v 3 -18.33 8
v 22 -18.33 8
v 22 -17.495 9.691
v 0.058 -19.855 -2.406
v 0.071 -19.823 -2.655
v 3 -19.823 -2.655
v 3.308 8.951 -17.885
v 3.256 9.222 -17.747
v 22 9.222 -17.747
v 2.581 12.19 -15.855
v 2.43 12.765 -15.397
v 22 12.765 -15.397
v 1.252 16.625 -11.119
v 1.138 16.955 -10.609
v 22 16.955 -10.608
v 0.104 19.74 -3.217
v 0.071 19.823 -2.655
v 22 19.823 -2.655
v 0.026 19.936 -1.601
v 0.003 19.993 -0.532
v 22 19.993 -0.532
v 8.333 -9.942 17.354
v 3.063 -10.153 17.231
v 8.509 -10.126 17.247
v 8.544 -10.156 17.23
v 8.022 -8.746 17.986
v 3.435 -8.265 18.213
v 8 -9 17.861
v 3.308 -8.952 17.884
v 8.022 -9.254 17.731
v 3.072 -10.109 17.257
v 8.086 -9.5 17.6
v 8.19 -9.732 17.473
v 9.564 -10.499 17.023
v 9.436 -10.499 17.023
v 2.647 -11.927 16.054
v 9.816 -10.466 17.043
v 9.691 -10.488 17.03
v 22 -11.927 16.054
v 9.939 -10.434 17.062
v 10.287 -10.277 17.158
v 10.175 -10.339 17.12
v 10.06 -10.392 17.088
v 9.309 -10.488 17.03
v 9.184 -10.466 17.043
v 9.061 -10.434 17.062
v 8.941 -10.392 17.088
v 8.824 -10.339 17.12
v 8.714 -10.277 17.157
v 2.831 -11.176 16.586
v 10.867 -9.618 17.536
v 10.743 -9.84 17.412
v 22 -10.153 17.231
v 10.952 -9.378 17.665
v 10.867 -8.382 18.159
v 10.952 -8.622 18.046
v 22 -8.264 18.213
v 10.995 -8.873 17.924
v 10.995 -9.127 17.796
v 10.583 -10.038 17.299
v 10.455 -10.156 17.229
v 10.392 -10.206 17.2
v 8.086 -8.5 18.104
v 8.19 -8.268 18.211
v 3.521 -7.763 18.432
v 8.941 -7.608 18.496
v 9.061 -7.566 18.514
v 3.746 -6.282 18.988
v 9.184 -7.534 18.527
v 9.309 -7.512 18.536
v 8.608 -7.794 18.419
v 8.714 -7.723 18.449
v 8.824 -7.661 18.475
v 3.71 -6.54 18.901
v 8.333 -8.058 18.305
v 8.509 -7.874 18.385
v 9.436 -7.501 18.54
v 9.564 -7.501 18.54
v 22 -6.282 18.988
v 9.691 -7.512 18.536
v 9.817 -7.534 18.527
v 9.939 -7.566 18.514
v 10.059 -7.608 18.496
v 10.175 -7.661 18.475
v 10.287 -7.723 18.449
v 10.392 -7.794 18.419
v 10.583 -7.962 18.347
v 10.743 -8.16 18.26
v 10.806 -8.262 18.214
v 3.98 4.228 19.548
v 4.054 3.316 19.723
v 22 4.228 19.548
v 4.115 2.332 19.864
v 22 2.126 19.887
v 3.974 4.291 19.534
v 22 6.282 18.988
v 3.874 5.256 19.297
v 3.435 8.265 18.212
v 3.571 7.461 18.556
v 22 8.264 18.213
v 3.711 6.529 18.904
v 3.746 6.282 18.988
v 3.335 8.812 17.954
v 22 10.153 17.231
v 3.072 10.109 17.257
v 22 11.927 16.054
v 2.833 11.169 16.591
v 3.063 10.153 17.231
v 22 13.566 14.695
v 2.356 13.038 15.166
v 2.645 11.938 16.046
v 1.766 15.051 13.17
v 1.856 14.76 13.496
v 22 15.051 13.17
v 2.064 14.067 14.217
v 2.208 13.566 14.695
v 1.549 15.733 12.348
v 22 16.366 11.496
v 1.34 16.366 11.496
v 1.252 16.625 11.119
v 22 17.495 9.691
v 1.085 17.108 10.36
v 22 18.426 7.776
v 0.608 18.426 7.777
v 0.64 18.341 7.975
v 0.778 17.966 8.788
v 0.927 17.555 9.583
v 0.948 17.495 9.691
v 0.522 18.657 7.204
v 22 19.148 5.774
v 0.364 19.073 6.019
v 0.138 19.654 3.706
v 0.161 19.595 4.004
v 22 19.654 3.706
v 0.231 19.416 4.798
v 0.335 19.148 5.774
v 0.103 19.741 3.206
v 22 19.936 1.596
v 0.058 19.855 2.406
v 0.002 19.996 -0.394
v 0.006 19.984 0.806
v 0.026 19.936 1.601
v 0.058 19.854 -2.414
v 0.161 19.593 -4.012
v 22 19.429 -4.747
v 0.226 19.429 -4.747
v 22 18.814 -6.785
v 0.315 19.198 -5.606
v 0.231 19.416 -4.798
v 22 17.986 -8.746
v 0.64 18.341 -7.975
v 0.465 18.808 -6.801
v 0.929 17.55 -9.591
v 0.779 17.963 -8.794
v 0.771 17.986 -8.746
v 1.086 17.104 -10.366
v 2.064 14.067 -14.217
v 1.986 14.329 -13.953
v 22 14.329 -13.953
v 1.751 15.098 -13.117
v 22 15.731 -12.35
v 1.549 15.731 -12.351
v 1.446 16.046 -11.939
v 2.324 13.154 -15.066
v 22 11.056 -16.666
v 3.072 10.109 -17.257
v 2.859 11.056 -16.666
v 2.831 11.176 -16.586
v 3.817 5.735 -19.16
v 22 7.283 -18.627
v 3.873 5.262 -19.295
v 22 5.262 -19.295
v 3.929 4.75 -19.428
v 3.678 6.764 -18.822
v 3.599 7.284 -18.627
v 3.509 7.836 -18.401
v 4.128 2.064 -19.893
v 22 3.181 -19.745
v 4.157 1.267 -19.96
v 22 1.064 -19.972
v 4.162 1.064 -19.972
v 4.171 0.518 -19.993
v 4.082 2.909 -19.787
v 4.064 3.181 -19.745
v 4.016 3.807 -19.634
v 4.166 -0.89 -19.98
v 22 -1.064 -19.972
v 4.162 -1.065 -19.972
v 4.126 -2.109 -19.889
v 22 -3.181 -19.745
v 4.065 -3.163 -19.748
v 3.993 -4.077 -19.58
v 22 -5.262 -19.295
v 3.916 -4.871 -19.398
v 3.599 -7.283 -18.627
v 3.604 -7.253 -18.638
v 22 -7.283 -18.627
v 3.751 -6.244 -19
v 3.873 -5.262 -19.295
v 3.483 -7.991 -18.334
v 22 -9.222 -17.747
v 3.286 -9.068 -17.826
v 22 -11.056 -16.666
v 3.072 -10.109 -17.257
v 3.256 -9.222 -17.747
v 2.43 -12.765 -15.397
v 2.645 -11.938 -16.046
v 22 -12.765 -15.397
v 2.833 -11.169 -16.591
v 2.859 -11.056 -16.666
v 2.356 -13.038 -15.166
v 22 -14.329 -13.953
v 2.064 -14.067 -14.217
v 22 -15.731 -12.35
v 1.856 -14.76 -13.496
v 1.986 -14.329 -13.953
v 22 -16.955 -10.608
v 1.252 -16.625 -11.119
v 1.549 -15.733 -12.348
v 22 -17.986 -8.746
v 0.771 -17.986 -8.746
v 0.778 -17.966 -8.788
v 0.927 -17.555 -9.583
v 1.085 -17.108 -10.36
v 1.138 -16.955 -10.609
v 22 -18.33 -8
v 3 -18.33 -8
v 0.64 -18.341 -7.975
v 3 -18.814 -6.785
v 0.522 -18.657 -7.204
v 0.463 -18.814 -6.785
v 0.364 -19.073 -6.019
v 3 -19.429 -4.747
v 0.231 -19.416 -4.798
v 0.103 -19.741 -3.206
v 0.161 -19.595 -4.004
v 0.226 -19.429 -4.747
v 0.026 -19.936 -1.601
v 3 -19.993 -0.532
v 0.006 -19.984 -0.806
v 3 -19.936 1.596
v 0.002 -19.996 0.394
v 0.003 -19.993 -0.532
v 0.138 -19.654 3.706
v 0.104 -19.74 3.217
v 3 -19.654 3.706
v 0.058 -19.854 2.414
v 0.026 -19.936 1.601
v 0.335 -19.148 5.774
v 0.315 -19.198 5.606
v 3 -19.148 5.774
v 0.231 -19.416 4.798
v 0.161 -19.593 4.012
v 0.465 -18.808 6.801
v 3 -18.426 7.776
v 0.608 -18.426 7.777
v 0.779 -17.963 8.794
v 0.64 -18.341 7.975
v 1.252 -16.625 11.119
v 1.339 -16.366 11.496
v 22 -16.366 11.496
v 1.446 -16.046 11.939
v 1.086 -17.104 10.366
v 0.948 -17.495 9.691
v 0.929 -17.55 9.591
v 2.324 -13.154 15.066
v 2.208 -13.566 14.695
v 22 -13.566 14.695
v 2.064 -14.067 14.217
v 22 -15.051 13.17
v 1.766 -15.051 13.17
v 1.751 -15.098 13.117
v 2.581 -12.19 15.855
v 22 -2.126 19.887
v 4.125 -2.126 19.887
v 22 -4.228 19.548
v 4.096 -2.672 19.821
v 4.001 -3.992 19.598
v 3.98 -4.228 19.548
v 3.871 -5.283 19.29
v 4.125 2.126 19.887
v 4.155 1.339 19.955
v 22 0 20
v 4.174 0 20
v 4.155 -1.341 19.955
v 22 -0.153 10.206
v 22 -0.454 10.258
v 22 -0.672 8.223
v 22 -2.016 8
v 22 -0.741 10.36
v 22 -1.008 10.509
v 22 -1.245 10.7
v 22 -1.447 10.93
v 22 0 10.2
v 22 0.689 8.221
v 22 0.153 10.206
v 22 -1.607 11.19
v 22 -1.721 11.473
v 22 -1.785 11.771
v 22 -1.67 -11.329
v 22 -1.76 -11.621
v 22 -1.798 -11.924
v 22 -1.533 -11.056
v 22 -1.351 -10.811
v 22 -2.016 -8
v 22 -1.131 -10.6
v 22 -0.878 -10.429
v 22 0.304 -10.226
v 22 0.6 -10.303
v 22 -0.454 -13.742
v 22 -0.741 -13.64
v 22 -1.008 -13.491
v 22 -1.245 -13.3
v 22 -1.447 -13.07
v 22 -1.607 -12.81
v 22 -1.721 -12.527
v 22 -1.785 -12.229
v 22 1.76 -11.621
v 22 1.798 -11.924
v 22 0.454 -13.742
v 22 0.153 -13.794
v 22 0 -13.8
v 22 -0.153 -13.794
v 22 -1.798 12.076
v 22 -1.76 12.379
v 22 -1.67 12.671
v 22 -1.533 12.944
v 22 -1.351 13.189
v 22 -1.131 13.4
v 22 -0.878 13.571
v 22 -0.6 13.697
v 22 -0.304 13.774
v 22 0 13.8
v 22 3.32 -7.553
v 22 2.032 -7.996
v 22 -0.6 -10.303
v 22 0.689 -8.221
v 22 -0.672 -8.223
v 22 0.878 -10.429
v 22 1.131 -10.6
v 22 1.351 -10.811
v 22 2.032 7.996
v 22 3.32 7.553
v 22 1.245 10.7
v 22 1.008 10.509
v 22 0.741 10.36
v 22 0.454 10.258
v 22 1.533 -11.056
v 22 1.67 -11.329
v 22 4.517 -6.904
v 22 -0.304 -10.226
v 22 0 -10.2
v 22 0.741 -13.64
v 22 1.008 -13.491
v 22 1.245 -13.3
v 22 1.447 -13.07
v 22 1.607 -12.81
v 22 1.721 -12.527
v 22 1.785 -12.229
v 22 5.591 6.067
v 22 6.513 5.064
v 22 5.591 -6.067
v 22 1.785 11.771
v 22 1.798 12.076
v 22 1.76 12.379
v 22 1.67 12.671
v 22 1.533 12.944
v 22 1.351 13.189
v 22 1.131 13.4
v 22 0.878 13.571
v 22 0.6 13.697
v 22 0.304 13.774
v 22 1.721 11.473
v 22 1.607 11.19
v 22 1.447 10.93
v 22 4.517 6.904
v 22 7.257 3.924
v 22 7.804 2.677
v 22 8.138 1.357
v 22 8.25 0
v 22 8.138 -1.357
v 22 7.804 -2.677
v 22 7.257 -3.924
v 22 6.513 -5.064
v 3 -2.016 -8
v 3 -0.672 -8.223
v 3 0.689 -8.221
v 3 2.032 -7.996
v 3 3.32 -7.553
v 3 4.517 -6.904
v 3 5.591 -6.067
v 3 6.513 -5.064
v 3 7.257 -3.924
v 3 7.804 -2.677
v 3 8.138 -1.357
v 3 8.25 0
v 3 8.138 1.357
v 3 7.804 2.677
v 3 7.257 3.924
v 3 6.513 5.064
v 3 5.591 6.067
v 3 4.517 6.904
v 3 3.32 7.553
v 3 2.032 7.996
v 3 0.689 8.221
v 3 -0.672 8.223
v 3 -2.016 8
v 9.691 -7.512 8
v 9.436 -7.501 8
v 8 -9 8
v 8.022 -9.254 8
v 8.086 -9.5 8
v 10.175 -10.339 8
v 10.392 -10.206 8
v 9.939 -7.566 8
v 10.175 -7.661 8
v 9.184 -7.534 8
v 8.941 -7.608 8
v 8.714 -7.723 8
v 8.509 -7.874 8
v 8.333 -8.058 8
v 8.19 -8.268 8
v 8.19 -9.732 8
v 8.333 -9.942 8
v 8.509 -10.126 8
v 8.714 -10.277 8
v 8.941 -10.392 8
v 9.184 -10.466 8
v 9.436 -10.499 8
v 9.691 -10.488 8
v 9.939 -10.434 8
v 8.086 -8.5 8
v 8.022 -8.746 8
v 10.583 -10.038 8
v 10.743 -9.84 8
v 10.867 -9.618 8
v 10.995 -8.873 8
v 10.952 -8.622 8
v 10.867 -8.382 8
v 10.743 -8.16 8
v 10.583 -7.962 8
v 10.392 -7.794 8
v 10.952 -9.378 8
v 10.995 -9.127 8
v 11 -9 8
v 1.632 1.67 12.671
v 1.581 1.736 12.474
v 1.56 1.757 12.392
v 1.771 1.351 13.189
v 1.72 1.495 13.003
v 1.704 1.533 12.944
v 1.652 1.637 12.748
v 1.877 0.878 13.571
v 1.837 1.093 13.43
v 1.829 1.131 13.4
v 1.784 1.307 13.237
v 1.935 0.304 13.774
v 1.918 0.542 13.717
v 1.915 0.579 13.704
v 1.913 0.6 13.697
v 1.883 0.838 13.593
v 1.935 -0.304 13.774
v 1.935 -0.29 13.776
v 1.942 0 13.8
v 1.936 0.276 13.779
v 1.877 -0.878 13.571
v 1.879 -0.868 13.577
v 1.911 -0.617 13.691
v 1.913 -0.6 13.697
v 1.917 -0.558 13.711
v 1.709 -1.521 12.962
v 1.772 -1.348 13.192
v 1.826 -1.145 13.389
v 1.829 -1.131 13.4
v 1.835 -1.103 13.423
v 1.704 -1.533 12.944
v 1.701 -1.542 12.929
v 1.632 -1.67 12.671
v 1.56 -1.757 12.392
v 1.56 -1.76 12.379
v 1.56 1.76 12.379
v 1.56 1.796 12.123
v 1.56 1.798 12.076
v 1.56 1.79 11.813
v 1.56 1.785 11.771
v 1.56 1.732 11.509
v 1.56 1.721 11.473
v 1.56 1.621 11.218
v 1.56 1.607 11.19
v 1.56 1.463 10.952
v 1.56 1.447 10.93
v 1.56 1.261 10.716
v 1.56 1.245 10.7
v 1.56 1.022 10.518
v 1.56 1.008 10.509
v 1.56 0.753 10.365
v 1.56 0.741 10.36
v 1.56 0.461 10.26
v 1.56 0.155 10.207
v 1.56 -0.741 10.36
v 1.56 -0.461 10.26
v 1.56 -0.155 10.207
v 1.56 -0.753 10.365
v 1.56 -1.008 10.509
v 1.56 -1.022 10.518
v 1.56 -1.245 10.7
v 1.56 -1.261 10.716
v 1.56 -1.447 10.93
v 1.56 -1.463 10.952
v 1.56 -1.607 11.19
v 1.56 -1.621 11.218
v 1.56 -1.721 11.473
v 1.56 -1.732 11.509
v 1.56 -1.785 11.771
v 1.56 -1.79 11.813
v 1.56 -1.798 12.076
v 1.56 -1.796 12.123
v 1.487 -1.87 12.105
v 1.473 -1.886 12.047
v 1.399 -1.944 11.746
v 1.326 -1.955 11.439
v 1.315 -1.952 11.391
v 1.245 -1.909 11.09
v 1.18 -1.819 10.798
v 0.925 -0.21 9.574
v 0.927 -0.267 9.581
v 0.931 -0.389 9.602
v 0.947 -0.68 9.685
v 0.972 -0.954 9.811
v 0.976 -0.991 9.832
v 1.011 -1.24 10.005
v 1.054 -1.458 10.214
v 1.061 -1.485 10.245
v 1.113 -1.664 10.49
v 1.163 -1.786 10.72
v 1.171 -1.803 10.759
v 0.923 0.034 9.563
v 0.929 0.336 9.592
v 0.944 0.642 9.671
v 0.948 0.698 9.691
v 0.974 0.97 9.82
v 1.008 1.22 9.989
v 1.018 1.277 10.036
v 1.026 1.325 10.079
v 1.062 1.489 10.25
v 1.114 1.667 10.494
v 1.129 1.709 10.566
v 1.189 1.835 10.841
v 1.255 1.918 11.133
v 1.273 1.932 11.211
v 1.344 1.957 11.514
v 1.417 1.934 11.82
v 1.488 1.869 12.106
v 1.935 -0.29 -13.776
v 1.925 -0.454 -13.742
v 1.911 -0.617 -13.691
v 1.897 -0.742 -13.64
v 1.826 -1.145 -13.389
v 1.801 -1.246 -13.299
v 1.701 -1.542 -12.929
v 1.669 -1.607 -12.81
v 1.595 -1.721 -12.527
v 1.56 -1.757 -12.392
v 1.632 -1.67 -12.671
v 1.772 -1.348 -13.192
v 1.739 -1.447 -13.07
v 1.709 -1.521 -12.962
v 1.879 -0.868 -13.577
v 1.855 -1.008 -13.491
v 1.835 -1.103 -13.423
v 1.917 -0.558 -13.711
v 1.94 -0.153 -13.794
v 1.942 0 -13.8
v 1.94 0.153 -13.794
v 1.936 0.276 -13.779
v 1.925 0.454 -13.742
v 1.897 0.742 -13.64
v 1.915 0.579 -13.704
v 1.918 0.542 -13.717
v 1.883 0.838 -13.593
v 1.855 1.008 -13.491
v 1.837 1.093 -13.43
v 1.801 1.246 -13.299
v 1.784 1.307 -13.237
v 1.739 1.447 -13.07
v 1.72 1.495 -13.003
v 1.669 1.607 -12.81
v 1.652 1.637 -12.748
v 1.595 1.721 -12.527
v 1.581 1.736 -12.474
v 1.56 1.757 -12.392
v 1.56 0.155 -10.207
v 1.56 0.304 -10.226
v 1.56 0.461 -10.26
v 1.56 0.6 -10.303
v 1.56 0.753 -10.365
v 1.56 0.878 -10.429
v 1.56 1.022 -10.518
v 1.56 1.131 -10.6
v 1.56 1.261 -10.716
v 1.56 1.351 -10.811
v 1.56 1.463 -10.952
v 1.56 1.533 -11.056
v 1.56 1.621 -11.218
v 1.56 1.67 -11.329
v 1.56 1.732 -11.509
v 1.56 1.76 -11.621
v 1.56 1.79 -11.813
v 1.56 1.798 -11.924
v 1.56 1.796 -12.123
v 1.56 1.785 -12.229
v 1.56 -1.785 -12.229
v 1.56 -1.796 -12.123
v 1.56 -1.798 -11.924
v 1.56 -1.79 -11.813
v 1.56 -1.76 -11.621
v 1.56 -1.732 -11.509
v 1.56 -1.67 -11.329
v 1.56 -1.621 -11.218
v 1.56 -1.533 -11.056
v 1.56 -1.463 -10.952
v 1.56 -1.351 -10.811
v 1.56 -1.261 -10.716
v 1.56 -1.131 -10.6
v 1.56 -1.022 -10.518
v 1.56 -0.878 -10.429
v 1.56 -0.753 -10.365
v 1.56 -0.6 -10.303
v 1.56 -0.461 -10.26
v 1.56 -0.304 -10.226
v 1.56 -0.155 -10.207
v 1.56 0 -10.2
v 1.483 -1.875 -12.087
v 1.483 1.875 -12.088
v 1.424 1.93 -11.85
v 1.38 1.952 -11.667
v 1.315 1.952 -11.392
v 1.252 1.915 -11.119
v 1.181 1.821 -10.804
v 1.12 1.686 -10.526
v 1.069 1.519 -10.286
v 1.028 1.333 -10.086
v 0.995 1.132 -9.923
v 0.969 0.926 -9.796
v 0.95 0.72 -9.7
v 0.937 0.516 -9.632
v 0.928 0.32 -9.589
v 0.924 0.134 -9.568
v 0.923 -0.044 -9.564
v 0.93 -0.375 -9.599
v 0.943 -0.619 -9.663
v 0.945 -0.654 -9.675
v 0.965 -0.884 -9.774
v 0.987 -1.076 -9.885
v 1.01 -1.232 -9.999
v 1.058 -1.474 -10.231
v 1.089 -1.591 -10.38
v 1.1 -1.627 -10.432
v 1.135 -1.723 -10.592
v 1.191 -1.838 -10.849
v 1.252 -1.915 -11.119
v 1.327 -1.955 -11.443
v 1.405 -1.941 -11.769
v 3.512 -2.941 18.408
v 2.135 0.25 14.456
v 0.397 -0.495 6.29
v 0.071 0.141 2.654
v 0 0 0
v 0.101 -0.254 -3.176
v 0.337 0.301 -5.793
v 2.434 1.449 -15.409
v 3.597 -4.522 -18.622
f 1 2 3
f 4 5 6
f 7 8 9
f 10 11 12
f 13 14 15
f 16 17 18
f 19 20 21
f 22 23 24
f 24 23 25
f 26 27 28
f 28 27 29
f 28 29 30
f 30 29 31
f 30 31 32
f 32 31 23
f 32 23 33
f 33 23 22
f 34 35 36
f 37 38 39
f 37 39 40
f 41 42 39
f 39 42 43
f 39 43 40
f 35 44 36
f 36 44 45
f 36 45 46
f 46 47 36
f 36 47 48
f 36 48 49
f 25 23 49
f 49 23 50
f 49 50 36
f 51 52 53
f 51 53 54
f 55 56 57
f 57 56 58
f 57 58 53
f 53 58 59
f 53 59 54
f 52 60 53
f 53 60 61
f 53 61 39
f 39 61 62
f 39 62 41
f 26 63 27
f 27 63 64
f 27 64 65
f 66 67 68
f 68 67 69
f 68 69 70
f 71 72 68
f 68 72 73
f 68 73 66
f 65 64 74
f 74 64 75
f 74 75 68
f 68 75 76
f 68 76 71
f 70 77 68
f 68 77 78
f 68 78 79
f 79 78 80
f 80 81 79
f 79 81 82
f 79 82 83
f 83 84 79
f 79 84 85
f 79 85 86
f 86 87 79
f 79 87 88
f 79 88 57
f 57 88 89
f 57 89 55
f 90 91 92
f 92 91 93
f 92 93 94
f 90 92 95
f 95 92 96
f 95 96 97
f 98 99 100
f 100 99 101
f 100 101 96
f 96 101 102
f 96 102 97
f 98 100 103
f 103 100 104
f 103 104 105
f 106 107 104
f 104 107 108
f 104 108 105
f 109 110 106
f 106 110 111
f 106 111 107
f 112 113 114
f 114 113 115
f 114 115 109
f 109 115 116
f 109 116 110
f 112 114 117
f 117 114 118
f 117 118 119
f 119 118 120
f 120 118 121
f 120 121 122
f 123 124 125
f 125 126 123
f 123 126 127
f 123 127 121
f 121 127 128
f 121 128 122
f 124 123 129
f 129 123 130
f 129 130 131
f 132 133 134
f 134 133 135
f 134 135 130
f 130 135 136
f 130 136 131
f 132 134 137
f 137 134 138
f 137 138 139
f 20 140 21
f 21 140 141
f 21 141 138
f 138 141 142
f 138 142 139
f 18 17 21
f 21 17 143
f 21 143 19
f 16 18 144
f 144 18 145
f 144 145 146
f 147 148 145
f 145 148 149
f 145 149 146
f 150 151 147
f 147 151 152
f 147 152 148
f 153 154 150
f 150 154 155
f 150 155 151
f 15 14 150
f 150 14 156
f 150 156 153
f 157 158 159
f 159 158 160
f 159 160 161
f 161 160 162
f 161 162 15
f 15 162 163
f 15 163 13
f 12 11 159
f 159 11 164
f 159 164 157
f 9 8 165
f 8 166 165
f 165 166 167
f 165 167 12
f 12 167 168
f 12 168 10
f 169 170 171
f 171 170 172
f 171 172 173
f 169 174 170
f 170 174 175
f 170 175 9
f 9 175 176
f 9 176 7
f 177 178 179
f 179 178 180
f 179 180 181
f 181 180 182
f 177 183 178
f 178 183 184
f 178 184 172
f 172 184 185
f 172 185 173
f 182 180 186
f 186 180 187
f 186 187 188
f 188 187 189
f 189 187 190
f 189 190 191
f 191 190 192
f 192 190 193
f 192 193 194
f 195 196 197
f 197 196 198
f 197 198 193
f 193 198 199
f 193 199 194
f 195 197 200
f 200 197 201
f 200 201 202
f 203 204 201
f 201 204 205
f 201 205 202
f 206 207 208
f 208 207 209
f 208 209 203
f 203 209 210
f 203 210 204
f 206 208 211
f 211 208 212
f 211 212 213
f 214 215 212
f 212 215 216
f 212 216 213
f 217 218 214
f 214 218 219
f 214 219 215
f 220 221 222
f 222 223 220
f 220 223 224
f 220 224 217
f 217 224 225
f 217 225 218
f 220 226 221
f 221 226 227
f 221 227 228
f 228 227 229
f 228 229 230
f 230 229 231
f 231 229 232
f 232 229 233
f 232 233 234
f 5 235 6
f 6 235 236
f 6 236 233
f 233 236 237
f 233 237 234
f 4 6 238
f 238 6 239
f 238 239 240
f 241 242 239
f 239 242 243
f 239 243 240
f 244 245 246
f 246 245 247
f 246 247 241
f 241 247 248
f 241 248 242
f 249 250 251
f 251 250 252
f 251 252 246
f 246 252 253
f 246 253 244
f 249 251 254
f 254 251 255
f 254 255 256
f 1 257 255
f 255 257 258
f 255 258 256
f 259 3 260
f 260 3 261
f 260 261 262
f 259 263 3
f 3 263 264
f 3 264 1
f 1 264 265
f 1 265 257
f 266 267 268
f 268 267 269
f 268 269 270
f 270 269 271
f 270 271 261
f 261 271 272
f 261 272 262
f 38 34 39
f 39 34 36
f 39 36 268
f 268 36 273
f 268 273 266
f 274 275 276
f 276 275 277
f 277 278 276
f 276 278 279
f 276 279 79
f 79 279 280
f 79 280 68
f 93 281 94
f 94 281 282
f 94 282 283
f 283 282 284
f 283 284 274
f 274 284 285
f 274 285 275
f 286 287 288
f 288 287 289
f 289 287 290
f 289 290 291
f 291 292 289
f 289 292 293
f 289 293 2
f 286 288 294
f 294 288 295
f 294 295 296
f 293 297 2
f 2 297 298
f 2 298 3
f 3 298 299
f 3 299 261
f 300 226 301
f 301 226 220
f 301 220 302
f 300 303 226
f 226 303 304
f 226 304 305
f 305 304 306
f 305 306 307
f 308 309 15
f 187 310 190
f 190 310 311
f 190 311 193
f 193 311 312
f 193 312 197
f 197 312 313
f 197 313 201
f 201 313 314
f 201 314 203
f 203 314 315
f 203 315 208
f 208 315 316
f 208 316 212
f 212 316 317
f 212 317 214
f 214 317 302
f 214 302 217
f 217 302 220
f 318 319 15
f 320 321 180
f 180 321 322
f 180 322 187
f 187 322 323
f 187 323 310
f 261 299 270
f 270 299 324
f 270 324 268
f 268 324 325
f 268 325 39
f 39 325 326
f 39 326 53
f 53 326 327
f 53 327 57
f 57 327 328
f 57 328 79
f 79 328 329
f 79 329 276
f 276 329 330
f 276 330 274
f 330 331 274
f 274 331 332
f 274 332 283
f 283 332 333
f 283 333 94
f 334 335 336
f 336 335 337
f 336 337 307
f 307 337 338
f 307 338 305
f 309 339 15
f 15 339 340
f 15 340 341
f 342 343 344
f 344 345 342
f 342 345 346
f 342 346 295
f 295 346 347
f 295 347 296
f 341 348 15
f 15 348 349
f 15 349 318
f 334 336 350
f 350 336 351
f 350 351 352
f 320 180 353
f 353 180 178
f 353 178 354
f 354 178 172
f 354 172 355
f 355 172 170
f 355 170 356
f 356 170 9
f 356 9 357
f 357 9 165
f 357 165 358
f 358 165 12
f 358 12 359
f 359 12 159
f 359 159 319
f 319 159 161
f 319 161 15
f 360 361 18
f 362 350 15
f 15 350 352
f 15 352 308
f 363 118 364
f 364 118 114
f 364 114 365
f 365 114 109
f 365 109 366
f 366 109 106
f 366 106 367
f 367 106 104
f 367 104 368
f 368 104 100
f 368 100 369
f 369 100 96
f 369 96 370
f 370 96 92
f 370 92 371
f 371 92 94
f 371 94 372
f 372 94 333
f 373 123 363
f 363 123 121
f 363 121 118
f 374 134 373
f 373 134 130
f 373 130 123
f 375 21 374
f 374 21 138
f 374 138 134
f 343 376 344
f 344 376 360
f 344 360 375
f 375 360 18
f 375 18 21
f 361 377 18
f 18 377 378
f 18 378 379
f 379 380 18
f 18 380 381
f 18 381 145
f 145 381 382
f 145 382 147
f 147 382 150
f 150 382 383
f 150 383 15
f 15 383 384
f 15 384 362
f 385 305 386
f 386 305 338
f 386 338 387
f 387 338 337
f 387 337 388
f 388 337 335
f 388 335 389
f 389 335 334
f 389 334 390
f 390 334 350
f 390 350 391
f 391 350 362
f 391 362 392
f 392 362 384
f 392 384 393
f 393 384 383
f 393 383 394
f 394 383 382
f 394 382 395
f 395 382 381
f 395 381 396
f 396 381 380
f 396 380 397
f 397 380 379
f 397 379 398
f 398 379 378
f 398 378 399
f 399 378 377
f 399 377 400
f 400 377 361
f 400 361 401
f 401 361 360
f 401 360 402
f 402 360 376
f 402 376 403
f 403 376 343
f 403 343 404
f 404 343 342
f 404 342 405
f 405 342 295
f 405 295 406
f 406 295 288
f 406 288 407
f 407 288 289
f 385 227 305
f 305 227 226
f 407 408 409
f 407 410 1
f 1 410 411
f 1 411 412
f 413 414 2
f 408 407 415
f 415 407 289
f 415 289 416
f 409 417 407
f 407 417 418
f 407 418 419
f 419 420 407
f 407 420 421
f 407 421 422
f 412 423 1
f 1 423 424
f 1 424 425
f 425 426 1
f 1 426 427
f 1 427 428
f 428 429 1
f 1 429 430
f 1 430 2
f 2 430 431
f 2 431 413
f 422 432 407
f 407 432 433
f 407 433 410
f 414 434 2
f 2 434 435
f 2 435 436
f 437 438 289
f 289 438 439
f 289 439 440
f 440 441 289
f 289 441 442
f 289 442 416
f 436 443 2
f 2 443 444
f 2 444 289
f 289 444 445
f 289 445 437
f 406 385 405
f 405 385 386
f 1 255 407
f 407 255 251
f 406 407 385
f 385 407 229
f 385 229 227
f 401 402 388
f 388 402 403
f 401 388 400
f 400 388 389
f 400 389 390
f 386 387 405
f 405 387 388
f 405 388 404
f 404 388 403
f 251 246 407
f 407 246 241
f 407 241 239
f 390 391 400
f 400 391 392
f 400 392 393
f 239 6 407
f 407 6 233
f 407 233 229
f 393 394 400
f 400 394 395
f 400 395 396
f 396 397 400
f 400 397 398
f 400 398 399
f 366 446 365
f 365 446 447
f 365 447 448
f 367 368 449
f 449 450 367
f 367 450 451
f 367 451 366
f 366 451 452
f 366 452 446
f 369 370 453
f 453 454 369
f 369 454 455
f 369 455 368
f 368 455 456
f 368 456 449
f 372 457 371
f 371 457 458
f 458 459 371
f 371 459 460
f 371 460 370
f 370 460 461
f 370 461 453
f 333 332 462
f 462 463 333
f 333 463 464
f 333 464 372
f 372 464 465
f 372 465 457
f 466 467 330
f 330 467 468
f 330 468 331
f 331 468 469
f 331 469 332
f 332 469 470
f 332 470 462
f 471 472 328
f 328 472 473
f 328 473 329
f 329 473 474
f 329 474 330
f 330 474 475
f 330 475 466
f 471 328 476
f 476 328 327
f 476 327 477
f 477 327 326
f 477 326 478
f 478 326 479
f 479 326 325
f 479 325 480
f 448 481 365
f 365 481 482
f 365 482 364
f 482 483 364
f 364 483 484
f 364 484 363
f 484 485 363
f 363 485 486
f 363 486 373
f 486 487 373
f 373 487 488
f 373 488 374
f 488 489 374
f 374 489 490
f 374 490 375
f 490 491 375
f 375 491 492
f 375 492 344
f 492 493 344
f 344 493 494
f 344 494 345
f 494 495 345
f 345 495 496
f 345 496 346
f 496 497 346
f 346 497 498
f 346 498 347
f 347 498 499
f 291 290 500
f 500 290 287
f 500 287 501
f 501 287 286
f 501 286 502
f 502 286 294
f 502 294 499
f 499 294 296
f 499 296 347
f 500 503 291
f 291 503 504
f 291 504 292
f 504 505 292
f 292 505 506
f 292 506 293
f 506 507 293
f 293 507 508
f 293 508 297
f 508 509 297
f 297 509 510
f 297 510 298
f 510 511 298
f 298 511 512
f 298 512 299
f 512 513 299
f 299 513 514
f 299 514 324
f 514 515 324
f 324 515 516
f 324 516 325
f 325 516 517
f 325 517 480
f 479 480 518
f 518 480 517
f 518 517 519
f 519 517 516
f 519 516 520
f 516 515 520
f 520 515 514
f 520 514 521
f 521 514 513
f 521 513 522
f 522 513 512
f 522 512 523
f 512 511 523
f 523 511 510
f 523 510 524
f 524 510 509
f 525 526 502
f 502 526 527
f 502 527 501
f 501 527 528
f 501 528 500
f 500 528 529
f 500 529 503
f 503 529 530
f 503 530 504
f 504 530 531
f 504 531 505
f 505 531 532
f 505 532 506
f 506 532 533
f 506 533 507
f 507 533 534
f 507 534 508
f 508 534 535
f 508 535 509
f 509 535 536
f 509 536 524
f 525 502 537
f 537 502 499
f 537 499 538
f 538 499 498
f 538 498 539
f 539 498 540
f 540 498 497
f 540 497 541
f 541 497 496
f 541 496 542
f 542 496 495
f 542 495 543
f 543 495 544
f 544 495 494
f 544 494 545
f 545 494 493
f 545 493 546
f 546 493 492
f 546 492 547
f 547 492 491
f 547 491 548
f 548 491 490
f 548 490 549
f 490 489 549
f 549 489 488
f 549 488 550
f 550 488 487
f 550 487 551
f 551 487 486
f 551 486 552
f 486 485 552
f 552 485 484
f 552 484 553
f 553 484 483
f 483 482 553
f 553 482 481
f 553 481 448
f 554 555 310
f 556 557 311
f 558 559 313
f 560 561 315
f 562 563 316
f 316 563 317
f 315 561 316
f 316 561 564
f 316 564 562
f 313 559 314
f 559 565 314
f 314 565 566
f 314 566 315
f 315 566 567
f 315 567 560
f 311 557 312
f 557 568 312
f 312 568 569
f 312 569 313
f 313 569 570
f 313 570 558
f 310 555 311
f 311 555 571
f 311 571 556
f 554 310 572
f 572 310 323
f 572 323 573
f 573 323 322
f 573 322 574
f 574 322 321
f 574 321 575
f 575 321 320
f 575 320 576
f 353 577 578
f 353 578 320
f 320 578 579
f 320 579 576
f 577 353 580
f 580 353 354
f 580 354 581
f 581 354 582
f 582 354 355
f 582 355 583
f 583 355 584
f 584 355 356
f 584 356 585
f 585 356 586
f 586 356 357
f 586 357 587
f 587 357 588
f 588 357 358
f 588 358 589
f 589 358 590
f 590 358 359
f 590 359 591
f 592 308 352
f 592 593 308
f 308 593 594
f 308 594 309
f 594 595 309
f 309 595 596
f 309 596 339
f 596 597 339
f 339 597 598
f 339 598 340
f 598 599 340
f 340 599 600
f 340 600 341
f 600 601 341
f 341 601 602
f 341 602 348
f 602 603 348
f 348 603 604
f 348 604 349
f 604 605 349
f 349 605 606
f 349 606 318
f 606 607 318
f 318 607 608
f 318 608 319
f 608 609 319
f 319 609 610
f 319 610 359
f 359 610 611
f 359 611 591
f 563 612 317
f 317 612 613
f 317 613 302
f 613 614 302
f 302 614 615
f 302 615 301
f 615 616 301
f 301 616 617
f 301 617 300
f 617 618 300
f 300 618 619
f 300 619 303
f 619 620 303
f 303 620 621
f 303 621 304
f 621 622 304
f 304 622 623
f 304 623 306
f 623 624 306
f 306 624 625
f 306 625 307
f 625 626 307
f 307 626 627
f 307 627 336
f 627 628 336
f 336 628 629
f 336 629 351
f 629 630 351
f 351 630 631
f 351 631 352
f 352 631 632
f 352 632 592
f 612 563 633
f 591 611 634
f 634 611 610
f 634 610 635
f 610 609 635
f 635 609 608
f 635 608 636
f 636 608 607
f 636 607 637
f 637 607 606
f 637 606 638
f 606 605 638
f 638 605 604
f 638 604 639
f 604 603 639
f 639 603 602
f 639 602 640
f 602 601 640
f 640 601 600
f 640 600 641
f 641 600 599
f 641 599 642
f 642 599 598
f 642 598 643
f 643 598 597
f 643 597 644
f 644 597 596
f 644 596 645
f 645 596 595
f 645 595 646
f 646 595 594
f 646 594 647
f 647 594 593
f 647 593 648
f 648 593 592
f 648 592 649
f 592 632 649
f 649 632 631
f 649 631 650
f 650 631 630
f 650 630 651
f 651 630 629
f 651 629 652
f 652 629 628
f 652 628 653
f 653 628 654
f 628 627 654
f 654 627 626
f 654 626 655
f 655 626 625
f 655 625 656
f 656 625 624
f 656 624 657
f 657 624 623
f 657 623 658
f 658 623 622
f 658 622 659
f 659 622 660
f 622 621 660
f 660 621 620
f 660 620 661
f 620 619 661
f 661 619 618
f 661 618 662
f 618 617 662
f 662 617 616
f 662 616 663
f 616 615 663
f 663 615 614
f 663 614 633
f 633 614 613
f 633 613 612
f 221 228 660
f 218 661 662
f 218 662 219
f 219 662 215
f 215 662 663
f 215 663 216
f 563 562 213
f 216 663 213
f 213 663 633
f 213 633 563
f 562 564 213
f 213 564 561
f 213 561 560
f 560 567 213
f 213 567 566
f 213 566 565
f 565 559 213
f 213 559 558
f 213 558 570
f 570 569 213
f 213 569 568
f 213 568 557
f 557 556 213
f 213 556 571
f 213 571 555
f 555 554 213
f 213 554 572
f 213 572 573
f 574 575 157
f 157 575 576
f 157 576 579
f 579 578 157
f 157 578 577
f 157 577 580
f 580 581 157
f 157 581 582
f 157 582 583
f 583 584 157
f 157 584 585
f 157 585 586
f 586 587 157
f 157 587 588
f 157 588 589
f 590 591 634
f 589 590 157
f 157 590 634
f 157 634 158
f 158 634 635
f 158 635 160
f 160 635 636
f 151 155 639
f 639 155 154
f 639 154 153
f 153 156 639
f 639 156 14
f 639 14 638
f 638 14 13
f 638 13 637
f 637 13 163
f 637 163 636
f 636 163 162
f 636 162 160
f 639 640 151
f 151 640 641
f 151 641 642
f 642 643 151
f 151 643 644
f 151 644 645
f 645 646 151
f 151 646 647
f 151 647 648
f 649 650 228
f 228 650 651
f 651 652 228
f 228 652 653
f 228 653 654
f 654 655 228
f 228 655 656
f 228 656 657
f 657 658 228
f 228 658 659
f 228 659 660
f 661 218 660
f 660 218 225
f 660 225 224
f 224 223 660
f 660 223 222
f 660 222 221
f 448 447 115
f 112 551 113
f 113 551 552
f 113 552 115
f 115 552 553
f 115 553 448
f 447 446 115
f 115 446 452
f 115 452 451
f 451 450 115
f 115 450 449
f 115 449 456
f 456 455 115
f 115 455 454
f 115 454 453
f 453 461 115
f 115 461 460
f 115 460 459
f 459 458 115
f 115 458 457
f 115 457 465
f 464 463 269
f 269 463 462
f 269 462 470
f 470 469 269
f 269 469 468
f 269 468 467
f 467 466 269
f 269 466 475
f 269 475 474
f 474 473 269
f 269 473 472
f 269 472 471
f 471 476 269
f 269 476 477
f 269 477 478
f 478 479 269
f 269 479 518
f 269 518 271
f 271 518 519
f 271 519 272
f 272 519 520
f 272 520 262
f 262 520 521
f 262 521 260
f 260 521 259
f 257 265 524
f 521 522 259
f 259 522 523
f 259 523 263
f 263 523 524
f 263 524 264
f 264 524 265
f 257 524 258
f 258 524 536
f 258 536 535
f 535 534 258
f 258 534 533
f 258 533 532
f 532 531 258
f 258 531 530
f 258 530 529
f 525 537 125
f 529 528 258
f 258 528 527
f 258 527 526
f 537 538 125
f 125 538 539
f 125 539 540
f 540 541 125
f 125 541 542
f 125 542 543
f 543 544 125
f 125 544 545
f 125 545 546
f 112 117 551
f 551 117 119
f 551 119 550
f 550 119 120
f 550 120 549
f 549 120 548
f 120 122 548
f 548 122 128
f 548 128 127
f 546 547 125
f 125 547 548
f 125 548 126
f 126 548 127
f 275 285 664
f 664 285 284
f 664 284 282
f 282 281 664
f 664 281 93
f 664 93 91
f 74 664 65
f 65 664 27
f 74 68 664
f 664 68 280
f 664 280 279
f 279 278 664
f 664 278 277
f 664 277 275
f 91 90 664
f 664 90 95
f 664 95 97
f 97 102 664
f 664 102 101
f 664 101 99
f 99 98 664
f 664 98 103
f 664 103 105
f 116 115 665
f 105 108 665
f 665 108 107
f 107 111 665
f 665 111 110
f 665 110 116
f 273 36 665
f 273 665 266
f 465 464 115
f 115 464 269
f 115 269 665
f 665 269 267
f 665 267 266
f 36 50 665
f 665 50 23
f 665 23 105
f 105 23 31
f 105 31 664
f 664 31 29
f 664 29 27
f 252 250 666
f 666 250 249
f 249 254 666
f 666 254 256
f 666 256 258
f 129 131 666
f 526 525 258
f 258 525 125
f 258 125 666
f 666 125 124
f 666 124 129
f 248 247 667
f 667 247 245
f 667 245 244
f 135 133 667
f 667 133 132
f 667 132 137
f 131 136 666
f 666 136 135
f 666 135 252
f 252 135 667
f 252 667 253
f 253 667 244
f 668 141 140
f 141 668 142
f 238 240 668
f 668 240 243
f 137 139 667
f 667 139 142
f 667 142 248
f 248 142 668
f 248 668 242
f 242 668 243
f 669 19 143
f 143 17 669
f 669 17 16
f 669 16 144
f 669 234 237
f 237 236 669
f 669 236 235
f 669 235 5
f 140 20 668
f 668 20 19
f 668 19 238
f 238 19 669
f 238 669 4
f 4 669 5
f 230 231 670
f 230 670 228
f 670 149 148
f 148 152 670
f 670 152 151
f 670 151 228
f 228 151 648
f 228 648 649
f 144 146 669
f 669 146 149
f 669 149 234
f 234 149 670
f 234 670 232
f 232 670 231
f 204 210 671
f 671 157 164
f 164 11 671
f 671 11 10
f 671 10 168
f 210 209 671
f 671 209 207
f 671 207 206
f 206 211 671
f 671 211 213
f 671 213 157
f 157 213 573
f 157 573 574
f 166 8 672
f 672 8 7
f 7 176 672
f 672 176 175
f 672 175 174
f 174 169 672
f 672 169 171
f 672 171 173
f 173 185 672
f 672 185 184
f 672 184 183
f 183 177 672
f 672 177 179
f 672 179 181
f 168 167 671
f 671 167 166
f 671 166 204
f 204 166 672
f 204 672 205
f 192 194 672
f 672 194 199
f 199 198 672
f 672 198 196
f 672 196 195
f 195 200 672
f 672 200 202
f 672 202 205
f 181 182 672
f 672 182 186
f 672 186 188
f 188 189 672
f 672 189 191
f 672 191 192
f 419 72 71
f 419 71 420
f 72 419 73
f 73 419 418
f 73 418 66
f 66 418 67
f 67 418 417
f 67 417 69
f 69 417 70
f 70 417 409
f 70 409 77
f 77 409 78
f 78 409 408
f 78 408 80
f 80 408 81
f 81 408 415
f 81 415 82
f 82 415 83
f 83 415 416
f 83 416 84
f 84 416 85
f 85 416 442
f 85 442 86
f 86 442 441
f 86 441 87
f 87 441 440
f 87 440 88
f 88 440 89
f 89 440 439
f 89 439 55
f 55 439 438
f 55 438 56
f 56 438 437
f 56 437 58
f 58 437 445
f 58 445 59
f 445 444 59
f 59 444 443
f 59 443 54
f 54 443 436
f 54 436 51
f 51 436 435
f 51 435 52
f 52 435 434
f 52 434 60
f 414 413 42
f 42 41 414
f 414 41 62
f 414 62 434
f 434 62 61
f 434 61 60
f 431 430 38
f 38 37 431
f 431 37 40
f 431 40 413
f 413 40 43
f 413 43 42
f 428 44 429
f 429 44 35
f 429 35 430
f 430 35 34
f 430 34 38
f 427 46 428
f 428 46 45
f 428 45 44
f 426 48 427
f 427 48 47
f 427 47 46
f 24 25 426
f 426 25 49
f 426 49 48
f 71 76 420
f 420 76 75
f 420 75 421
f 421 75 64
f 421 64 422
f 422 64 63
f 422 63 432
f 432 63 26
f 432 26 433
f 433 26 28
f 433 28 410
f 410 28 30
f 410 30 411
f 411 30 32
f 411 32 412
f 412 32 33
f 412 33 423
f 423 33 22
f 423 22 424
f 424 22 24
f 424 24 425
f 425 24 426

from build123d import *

# Parameters (mm, degrees)
SKETCH1_R                     = 20
BOSS_EXTRUDE1_DEPTH           = 22
CUT_EXTRUDE1_START            = -19
CUT_EXTRUDE1_DEPTH            = 19
CSK_FOR_M3_SFHCS1_D           = 3.6
CSK_FOR_M3_SFHCS1_CSINK_D     = 6.72
CSK_FOR_M3_SFHCS1_CSINK_ANGLE = 90
CUT_EXTRUDE2_START            = -20.001419
SKETCH7_R                     = 75
SKETCH7_R_2                   = 50
CUT_EXTRUDE2_DEPTH            = 40.002838
CUT_EXTRUDE3_REACH            = 37.833
CUT_EXTRUDE3_END_RADIUS       = 20
SKETCH8_R                     = 1.5


with BuildPart() as part:
    # Sketch1 → Boss-Extrude1 (new body)
    with BuildSketch(Plane(origin=(0, 0, 0), x_dir=(0, 0, -1), z_dir=(1, 0, 0))):
        Circle(SKETCH1_R)
    extrude(amount=BOSS_EXTRUDE1_DEPTH)

    # Sketch2 → Cut-Extrude1 (cut)
    with BuildSketch(Plane(origin=(22, 0, 0), x_dir=(0, 0, -1), z_dir=(1, 0, 0)).offset(CUT_EXTRUDE1_START)):
        with BuildLine():
            Line((-8, -18.33030278), (-8, -2.015564437))
            ThreePointArc((-8, -2.015564437), (0, 8.25), (8, -2.015564437))
            Line((8, -2.015564437), (8, -18.33030278))
            ThreePointArc((8, -18.33030278), (0, -20), (-8, -18.33030278))
        make_face()
    extrude(amount=CUT_EXTRUDE1_DEPTH, mode=Mode.SUBTRACT)

    # CSK for M3 SFHCS1 (through all)
    with Locations(Plane.ZY):
        with Locations((-12, 0), (12, 0)):
            CounterSinkHole(CSK_FOR_M3_SFHCS1_D / 2, CSK_FOR_M3_SFHCS1_CSINK_D / 2, counter_sink_angle=CSK_FOR_M3_SFHCS1_CSINK_ANGLE)

    # Sketch7 → Cut-Extrude2 (cut)
    with BuildSketch(Plane(origin=(0, 0, 0), x_dir=(1, 0, 0), z_dir=(0, 1, 0)).offset(CUT_EXTRUDE2_START)):
        with Locations((50, 0)):
            Circle(SKETCH7_R)
        with Locations((50, 0)):
            Circle(SKETCH7_R_2, mode=Mode.SUBTRACT)
    extrude(amount=CUT_EXTRUDE2_DEPTH, mode=Mode.SUBTRACT)

    # Cut-Extrude3: up to this cylinder (the profile starts inside it)
    cut_extrude3_end = Plane(origin=(9.5, 0, 0), z_dir=(-1, 0, 0)) * Cylinder(CUT_EXTRUDE3_END_RADIUS, 116.666, mode=Mode.PRIVATE)
    # Sketch8 → Cut-Extrude3 (cut, up to the surface)
    with BuildSketch(Plane.XY, mode=Mode.PRIVATE) as cut_extrude3_sk1:
        with Locations(Location((9.5, -9, 0), (0, 0, 180))):
            Circle(SKETCH8_R)
    cut_extrude3_tool1 = extrude(cut_extrude3_sk1.sketch, amount=CUT_EXTRUDE3_REACH, mode=Mode.PRIVATE) & cut_extrude3_end
    add(cut_extrude3_tool1.solids().sort_by_distance((9.5, -9, 0))[0], mode=Mode.SUBTRACT)


solid = part.part
